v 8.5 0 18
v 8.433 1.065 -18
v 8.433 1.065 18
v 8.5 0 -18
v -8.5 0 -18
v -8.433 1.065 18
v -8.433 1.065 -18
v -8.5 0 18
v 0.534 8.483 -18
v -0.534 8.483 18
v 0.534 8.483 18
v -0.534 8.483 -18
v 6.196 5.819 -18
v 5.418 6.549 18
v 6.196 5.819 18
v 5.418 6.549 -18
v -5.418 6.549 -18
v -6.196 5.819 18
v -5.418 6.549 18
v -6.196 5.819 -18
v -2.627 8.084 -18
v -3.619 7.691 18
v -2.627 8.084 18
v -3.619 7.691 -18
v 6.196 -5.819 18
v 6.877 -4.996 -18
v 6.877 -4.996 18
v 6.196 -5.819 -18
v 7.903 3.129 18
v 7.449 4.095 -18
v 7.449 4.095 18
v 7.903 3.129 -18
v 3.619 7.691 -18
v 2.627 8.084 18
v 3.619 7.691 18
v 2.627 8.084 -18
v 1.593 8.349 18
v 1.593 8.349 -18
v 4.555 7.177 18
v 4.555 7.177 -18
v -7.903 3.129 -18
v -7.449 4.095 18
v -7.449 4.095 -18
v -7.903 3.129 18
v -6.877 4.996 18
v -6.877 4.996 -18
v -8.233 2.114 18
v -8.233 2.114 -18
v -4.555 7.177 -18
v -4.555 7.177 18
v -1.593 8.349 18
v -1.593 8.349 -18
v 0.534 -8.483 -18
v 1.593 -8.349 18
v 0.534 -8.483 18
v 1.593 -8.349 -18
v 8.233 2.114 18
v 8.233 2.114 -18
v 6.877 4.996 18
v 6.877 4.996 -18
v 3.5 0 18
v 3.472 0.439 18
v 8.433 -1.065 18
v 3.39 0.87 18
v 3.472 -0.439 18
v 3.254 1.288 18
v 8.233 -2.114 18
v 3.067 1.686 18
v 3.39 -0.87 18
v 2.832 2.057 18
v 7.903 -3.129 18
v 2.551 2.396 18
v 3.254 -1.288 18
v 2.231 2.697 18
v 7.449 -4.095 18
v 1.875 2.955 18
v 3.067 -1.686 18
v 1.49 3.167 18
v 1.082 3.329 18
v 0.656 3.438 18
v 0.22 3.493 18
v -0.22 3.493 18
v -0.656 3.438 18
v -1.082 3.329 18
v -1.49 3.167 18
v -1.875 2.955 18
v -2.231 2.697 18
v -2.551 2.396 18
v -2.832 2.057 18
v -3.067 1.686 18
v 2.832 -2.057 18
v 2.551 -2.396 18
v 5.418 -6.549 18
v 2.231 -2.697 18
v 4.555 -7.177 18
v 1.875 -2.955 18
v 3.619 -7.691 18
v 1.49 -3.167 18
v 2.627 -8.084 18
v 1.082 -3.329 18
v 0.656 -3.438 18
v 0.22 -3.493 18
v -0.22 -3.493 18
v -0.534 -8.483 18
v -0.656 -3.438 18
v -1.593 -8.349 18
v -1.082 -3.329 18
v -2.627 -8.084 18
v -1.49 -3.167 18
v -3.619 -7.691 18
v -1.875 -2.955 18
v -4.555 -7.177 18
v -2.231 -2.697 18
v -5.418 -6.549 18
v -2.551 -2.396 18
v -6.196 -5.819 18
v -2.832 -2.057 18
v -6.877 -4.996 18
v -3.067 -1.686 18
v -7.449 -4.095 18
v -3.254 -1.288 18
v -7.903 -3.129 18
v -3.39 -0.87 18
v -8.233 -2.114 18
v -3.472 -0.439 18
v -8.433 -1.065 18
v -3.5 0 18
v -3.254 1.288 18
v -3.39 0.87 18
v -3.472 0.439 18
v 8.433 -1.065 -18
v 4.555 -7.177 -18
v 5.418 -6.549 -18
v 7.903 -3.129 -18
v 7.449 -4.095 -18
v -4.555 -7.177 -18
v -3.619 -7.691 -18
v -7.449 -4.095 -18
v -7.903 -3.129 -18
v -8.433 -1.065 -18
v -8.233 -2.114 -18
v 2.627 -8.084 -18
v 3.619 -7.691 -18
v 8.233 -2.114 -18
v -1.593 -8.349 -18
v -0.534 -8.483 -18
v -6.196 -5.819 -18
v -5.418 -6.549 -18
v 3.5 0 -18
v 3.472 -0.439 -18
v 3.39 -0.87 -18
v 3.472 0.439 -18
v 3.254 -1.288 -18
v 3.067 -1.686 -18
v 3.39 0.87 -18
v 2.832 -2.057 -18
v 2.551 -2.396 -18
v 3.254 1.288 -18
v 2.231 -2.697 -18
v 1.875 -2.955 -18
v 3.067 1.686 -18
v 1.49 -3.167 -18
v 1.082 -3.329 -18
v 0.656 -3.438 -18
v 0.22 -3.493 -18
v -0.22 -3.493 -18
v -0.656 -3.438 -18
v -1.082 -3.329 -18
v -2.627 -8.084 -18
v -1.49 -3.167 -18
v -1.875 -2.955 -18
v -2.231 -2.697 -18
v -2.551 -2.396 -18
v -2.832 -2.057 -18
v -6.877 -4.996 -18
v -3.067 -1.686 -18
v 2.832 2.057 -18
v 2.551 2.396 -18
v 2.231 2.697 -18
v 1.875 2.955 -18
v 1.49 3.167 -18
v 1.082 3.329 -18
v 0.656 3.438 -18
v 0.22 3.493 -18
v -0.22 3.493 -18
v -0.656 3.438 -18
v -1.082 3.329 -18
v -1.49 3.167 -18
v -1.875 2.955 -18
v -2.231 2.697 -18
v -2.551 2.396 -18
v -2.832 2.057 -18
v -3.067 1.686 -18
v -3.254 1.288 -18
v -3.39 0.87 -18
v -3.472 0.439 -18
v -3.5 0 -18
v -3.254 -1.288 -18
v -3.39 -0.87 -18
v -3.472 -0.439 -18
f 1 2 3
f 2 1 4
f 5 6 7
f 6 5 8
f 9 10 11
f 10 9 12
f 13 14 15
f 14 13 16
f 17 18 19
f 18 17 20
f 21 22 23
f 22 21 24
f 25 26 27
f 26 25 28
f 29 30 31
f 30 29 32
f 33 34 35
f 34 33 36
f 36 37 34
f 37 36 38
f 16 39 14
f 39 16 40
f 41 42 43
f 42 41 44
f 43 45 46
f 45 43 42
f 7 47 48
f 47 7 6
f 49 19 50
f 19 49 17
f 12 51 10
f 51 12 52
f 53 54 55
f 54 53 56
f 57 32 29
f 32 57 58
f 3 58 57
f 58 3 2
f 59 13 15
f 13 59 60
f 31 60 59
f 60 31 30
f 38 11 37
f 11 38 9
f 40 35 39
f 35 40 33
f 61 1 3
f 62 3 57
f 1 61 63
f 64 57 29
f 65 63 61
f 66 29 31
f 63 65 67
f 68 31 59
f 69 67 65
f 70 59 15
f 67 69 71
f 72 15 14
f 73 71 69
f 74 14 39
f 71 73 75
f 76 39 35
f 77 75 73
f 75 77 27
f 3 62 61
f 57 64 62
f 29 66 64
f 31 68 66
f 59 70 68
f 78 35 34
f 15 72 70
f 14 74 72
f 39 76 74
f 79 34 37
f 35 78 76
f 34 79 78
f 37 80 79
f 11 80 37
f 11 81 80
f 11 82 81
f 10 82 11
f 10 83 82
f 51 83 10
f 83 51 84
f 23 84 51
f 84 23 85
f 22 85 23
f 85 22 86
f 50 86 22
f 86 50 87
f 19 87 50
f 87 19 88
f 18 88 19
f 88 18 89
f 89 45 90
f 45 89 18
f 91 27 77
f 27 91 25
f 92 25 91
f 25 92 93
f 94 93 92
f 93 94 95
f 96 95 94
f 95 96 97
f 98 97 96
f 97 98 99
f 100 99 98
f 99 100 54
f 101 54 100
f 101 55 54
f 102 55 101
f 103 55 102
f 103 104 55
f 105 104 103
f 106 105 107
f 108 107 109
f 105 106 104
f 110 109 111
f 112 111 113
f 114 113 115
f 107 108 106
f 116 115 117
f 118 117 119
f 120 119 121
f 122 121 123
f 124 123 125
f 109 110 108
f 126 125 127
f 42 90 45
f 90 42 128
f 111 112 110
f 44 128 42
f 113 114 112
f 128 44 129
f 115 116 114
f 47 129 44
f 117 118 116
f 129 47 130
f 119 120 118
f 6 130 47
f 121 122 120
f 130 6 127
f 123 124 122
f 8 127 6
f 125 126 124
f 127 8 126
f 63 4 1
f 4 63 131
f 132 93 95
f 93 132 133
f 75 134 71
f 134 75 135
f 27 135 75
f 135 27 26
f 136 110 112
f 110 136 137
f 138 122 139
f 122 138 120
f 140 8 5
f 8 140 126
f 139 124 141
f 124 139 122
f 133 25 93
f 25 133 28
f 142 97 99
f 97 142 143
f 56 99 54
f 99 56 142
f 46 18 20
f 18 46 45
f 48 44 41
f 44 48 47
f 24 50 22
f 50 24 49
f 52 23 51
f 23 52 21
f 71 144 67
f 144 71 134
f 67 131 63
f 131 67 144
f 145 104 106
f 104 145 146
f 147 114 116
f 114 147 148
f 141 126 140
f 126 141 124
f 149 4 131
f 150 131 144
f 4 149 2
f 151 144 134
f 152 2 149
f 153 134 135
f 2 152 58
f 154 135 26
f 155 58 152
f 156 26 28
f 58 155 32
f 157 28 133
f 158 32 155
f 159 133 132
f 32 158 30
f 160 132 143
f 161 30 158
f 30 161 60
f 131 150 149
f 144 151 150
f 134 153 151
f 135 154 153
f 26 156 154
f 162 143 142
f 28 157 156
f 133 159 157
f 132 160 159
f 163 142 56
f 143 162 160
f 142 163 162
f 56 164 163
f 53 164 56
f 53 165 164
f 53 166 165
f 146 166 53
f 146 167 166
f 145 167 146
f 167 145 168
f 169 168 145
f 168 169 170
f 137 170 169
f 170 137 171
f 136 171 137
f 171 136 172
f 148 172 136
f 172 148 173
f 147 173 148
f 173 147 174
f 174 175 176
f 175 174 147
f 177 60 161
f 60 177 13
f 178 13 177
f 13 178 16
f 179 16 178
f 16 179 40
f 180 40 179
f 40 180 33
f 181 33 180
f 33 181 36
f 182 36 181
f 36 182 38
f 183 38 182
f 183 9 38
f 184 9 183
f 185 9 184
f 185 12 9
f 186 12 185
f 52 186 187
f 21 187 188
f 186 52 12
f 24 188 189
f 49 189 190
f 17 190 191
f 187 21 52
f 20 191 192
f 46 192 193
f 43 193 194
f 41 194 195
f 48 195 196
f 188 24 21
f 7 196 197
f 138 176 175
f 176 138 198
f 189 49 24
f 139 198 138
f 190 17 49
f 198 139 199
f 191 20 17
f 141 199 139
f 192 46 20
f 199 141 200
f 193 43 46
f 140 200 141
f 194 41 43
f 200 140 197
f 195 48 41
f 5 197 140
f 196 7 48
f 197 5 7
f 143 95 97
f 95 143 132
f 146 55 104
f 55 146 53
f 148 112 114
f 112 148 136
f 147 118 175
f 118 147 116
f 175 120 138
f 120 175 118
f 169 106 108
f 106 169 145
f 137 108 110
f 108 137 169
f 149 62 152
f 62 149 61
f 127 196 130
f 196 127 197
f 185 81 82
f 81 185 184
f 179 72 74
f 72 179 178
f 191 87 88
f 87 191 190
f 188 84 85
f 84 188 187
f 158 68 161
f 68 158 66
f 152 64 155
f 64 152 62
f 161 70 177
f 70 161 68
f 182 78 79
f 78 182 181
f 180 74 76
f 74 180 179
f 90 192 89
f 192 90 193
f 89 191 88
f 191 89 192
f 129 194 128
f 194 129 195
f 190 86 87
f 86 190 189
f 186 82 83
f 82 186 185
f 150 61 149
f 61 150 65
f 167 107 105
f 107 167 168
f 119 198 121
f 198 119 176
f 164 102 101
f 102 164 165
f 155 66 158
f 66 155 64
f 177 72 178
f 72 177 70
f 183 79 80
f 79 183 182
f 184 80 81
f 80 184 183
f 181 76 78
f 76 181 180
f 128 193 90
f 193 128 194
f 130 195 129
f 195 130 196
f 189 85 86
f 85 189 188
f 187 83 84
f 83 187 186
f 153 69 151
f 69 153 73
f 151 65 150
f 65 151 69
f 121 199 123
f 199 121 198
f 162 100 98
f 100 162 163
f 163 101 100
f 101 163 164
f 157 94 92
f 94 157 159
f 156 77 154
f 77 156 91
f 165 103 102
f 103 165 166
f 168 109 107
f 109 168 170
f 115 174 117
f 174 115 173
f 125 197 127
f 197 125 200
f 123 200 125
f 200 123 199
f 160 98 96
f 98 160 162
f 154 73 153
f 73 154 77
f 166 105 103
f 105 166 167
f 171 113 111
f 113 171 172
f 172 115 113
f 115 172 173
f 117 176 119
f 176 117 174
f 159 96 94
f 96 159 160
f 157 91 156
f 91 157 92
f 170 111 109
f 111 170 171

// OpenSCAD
$fn = 50;


difference() {
	union() {
		translate(v = [0, 0, -18.0000000000]) {
			cylinder(h = 36, r = 8.5000000000);
		}
	}
	union() {
		translate(v = [0, 0, -100.0000000000]) {
			cylinder(h = 200, r = 3.5000000000);
		}
	}
}
